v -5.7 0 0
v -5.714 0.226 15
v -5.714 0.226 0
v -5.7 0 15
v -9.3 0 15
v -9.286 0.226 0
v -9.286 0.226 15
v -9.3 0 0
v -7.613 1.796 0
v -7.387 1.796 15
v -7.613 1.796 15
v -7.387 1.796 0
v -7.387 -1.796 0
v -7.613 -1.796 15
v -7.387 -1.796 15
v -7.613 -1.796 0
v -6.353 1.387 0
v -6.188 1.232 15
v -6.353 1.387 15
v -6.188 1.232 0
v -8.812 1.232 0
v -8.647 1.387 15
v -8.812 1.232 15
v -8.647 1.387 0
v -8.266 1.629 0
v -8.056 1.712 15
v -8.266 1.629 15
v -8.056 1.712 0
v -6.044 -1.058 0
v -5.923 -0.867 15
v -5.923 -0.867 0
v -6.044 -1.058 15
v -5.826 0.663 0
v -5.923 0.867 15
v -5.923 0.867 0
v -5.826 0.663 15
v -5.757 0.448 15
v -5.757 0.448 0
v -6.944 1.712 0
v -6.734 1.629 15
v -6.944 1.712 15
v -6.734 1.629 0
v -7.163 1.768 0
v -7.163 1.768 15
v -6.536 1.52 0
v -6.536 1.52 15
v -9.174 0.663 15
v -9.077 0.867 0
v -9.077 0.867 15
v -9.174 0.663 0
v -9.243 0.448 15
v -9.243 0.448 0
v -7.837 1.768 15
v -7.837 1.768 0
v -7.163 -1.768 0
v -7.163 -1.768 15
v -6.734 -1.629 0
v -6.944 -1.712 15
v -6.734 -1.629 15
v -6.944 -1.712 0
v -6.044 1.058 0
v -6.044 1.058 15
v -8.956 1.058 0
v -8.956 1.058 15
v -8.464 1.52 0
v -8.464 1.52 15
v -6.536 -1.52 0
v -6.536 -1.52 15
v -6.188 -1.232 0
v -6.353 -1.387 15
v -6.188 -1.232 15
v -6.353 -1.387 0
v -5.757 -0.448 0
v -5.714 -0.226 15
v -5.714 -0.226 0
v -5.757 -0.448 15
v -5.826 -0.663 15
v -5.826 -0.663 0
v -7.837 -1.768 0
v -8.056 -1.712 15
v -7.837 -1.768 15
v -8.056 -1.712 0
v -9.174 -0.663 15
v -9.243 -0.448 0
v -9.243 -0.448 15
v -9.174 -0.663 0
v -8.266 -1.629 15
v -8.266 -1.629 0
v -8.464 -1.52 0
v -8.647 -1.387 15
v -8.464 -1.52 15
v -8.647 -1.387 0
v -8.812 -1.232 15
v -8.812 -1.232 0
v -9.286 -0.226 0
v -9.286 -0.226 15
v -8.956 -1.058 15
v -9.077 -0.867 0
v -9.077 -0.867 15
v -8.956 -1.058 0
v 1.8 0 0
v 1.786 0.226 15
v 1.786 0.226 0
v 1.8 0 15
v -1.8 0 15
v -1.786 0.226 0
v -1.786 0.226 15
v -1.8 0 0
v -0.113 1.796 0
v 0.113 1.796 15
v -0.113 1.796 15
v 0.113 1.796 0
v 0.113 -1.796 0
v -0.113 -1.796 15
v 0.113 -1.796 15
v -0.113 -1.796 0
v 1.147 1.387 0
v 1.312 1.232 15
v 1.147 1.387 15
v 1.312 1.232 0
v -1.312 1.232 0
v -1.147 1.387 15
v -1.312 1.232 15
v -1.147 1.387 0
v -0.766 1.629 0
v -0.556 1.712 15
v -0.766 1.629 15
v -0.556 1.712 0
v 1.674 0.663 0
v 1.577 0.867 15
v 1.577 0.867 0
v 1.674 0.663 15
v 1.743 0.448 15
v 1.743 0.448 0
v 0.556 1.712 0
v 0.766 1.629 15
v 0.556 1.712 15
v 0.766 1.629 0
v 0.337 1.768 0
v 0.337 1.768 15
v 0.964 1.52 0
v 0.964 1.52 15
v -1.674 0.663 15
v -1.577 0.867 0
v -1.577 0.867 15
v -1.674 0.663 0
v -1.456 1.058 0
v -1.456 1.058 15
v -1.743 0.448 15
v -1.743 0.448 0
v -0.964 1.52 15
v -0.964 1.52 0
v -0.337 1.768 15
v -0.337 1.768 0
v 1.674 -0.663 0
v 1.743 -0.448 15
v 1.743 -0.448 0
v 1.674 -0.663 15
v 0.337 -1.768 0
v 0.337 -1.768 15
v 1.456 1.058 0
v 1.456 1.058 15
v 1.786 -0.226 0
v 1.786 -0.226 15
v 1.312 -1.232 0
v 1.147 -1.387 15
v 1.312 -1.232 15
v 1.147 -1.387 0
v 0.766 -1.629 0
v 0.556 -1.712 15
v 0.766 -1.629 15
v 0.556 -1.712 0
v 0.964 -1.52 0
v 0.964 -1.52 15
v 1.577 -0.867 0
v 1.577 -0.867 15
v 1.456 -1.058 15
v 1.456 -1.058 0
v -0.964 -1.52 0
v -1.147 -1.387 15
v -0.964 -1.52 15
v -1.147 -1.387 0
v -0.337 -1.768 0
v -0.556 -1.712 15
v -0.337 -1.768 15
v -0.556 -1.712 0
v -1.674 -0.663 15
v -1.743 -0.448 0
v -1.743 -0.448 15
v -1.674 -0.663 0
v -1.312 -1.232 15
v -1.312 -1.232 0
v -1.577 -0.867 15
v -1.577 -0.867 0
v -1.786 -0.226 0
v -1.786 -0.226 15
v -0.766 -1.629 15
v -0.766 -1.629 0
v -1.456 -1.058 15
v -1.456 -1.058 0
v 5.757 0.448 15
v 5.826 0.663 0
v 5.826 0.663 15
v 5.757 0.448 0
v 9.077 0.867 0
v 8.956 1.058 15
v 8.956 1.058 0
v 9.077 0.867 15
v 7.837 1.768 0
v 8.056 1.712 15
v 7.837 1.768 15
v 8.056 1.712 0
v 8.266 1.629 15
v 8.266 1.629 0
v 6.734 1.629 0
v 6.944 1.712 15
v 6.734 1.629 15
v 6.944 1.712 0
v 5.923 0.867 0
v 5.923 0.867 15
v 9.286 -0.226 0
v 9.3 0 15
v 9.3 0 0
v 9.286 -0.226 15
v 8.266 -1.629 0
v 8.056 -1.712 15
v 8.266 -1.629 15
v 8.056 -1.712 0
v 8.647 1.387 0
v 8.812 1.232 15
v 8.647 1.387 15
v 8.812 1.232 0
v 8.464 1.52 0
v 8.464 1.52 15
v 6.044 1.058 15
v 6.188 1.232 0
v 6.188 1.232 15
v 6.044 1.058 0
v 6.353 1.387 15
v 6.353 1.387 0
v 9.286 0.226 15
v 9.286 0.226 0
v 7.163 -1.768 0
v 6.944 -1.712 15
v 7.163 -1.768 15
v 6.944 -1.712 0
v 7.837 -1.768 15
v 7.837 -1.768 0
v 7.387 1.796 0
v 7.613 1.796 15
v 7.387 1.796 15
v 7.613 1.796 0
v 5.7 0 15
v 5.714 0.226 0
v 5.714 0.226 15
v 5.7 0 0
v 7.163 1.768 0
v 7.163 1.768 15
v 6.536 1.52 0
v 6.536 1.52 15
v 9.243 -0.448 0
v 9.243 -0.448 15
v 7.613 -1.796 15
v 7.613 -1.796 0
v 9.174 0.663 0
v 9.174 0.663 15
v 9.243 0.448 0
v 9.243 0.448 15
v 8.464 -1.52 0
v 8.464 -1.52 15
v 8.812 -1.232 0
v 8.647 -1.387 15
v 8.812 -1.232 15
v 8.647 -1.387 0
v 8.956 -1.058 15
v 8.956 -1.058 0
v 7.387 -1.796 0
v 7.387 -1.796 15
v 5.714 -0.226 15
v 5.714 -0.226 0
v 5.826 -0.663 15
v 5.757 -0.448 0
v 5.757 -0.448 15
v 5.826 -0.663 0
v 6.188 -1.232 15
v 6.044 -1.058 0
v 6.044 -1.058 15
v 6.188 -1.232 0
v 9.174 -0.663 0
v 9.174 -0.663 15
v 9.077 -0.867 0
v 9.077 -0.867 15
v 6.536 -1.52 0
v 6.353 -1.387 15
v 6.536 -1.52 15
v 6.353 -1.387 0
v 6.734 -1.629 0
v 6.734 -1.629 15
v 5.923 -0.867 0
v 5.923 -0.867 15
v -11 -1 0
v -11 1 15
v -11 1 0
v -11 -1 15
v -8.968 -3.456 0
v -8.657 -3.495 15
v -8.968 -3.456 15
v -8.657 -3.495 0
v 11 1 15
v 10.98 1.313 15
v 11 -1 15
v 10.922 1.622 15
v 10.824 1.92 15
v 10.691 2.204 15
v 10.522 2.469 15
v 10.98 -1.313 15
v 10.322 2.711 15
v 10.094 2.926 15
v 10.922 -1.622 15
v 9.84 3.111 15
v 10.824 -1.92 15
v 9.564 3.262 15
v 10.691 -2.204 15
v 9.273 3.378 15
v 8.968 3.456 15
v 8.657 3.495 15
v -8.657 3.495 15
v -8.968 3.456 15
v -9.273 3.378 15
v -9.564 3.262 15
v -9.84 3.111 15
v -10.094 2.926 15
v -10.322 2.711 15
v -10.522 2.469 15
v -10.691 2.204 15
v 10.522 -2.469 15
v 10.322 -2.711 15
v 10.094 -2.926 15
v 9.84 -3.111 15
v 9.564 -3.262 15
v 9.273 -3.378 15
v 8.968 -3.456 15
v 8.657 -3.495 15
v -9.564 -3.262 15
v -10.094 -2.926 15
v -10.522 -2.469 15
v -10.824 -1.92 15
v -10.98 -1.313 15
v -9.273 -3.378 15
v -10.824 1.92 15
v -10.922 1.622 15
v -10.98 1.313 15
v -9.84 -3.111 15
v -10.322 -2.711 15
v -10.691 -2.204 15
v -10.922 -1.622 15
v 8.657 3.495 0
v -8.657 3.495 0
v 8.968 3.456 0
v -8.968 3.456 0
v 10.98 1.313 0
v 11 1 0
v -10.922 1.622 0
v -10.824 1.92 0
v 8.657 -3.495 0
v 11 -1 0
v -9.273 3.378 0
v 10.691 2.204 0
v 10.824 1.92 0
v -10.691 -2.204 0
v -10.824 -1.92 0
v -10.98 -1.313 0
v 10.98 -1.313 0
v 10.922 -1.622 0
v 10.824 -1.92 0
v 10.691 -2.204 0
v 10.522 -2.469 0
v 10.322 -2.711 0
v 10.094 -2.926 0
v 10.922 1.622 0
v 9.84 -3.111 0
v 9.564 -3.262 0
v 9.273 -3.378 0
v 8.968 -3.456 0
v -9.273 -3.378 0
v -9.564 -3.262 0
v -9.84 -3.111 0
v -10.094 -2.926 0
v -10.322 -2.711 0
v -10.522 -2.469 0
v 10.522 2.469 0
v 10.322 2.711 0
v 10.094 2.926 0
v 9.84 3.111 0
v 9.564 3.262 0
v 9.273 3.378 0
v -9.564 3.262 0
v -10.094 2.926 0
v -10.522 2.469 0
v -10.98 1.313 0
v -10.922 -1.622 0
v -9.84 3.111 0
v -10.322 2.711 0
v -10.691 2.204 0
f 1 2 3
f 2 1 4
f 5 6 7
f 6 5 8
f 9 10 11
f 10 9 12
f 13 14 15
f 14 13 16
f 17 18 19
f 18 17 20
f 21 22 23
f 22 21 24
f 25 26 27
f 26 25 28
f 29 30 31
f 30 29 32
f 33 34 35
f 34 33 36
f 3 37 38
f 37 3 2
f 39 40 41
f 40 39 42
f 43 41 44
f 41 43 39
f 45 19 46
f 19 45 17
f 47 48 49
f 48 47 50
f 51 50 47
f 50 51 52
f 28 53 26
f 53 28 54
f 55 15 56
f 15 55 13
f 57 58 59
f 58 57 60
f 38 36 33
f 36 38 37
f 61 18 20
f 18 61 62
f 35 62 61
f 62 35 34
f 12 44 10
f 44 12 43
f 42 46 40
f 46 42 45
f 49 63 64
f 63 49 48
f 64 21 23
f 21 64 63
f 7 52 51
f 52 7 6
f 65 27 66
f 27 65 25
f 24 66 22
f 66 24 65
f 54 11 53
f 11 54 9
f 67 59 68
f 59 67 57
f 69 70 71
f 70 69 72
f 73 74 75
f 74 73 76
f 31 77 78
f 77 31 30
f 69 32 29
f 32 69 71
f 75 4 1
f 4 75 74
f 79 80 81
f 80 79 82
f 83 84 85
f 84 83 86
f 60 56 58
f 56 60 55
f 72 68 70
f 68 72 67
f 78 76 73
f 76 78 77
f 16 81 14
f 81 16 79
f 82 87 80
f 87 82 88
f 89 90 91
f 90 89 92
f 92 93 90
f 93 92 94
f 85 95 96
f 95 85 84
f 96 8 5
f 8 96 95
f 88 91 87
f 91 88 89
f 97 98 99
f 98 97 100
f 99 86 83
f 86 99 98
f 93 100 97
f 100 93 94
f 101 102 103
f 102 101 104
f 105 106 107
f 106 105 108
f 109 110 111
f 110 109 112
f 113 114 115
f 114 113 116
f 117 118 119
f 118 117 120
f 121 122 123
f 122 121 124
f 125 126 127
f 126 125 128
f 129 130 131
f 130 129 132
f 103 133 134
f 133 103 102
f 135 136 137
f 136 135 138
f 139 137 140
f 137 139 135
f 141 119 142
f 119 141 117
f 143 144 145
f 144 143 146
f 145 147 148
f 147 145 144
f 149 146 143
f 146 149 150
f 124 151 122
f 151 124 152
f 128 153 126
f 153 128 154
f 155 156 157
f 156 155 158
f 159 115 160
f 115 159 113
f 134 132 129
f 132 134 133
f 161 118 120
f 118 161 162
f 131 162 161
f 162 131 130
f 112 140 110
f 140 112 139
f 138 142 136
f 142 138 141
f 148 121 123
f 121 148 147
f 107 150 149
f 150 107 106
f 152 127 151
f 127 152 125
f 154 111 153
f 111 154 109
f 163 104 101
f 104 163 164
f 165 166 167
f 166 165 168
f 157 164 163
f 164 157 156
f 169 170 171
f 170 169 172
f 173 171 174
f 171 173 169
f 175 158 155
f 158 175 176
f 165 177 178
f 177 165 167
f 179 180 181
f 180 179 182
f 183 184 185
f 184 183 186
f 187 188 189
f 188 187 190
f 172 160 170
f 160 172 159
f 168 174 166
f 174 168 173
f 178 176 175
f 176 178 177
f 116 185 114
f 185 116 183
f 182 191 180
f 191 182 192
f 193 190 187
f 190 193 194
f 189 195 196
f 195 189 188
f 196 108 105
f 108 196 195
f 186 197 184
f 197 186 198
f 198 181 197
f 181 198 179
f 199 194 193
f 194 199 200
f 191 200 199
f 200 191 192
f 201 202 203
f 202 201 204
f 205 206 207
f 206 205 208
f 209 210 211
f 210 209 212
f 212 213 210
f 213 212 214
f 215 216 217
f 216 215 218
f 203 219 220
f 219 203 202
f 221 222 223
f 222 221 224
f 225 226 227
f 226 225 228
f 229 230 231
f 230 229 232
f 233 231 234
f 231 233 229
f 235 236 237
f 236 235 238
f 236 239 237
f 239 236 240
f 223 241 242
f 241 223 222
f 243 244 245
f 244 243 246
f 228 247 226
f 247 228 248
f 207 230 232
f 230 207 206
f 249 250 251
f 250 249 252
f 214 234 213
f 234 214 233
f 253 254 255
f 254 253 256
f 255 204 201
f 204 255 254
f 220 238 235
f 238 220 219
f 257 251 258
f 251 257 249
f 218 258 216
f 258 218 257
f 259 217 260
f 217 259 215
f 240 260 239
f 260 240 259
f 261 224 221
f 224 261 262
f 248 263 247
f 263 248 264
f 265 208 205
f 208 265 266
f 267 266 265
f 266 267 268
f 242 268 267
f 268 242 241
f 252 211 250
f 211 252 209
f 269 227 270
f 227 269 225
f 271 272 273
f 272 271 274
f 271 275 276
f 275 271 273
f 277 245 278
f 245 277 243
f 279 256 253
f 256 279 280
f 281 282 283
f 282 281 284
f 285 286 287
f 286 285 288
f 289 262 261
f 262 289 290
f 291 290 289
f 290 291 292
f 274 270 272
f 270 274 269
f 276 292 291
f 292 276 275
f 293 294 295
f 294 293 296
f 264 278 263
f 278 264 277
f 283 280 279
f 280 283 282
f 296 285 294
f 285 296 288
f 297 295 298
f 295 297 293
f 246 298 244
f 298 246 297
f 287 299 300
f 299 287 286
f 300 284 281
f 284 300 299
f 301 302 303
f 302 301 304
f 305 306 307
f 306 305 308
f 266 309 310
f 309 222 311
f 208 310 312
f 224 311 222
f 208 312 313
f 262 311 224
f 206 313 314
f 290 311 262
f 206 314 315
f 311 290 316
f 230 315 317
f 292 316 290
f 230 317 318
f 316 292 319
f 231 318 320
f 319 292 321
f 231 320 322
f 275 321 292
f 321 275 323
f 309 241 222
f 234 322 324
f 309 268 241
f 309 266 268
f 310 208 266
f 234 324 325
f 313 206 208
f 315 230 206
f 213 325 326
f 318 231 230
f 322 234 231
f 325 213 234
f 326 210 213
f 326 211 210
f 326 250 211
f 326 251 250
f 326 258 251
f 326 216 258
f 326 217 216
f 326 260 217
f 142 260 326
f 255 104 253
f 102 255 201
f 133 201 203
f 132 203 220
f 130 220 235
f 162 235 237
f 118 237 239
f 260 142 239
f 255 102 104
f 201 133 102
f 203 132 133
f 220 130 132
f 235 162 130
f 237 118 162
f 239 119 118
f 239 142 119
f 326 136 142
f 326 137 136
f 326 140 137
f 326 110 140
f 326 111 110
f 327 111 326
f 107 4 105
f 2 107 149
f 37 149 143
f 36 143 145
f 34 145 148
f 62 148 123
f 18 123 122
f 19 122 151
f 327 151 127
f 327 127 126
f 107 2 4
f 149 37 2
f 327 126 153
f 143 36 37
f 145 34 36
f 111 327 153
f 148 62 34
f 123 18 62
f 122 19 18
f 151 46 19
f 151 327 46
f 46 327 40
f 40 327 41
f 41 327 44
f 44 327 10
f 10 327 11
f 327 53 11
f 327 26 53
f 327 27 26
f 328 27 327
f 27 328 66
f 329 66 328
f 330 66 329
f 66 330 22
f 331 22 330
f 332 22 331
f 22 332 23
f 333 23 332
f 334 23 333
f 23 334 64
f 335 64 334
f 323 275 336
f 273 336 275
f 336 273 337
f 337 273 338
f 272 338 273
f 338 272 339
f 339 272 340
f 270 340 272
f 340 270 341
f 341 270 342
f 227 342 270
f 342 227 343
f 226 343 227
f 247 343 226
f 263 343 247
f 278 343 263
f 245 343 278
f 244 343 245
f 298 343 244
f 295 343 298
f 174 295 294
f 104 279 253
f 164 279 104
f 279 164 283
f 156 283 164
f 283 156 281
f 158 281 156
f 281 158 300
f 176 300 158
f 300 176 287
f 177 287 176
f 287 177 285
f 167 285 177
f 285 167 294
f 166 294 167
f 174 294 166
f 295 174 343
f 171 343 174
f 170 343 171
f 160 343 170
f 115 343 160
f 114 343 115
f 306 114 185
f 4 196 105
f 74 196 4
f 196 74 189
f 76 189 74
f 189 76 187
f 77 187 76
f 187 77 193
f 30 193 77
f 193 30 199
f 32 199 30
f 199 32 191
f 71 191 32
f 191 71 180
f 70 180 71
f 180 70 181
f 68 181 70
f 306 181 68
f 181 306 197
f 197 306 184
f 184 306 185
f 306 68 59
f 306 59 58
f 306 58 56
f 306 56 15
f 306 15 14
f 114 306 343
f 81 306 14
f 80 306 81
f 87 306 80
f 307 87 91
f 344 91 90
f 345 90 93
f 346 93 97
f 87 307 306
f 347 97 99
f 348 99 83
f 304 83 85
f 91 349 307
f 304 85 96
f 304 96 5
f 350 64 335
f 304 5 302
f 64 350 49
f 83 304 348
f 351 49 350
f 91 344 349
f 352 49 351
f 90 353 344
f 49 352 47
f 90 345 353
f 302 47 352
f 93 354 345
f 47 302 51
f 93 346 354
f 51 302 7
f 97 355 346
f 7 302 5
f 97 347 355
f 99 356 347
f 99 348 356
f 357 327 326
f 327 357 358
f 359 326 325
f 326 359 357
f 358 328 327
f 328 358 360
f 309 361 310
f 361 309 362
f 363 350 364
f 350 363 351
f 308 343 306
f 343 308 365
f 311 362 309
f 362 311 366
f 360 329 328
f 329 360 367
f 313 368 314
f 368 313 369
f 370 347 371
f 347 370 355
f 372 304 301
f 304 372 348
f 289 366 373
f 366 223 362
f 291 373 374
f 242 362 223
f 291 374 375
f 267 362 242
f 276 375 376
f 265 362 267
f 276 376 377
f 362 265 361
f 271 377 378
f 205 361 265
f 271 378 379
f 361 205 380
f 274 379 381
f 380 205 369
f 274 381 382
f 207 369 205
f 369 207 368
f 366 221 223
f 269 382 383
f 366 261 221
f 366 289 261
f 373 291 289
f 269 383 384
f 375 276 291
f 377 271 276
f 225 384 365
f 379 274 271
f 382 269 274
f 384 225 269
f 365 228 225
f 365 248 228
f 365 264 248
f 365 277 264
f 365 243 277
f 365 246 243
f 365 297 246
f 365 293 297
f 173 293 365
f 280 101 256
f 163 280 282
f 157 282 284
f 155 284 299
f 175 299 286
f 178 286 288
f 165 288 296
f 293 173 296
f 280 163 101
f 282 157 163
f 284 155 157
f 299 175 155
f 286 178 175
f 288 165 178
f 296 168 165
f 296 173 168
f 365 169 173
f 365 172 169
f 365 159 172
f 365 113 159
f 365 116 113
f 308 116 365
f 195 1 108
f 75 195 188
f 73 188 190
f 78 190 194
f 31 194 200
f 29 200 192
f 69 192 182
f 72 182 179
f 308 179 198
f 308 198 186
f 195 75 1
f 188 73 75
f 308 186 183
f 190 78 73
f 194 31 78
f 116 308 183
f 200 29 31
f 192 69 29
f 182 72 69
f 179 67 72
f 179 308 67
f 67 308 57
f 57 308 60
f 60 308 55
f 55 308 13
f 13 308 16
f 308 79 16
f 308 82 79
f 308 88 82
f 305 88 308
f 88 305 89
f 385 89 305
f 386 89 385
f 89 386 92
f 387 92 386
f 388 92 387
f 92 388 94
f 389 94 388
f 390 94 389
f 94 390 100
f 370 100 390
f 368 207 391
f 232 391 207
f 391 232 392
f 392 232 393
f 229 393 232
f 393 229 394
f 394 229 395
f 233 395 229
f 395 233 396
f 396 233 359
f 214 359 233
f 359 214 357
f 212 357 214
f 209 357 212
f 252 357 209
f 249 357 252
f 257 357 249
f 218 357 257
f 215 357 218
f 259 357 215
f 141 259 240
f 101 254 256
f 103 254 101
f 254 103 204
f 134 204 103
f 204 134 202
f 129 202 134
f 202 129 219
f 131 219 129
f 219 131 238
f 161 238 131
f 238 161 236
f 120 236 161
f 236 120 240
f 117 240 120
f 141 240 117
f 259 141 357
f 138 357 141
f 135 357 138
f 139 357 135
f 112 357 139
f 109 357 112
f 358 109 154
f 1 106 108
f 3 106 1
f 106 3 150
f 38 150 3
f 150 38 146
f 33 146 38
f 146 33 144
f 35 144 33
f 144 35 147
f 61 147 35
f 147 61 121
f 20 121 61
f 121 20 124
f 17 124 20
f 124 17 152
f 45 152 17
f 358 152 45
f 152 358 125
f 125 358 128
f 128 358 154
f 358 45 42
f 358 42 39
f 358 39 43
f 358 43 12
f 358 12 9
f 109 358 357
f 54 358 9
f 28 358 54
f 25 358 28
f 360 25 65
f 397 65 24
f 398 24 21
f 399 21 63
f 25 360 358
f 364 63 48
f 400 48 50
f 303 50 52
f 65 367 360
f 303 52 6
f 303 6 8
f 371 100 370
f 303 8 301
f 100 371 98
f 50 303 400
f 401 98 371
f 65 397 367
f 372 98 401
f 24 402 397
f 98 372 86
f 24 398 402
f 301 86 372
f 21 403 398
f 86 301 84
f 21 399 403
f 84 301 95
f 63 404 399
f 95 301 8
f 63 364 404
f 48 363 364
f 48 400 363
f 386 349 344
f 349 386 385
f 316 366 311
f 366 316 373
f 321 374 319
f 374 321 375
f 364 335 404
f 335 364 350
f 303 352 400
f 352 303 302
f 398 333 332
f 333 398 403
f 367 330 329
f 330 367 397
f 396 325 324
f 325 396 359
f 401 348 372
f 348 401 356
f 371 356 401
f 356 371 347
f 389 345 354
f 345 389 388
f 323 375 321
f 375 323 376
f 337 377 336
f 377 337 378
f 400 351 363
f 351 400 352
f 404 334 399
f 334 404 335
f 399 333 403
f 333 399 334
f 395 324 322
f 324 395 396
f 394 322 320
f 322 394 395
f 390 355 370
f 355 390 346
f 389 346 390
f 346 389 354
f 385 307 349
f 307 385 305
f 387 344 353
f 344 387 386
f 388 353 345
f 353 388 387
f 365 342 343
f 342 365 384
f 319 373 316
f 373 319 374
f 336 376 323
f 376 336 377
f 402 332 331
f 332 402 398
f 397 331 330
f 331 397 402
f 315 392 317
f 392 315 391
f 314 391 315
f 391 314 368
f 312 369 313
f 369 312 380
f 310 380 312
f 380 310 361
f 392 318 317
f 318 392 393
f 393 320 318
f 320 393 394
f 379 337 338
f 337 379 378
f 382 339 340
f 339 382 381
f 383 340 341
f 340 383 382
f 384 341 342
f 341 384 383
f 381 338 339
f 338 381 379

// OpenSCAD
$fn = 50;


difference() {
	union() {
		translate(v = [0, 0, 0]) {
			rotate(a = [0, 0, 0]) {
				hull() {
					translate(v = [-8.5000000000, 1.0000000000, 0]) {
						rotate(a = [0, 0, 0]) {
							translate(v = [0, 0, 0]) {
								rotate(a = [0, 0, 0]) {
									cylinder(h = 15, r = 2.5000000000);
								}
							}
						}
					}
					translate(v = [8.5000000000, 1.0000000000, 0]) {
						rotate(a = [0, 0, 0]) {
							translate(v = [0, 0, 0]) {
								rotate(a = [0, 0, 0]) {
									cylinder(h = 15, r = 2.5000000000);
								}
							}
						}
					}
					translate(v = [-8.5000000000, -1.0000000000, 0]) {
						rotate(a = [0, 0, 0]) {
							translate(v = [0, 0, 0]) {
								rotate(a = [0, 0, 0]) {
									cylinder(h = 15, r = 2.5000000000);
								}
							}
						}
					}
					translate(v = [8.5000000000, -1.0000000000, 0]) {
						rotate(a = [0, 0, 0]) {
							translate(v = [0, 0, 0]) {
								rotate(a = [0, 0, 0]) {
									cylinder(h = 15, r = 2.5000000000);
								}
							}
						}
					}
				}
			}
		}
	}
	union() {
		translate(v = [-7.5000000000, 0.0000000000, 0]) {
			rotate(a = [0, 0, 0]) {
				translate(v = [0, 0, -50]) {
					rotate(a = [0, 0, 0]) {
						cylinder(h = 100, r = 1.8000000000);
					}
				}
			}
		}
		translate(v = [0.0000000000, 0.0000000000, 0]) {
			rotate(a = [0, 0, 0]) {
				translate(v = [0, 0, -50]) {
					rotate(a = [0, 0, 0]) {
						cylinder(h = 100, r = 1.8000000000);
					}
				}
			}
		}
		translate(v = [7.5000000000, 0.0000000000, 0]) {
			rotate(a = [0, 0, 0]) {
				translate(v = [0, 0, -50]) {
					rotate(a = [0, 0, 0]) {
						cylinder(h = 100, r = 1.8000000000);
					}
				}
			}
		}
	}
}
